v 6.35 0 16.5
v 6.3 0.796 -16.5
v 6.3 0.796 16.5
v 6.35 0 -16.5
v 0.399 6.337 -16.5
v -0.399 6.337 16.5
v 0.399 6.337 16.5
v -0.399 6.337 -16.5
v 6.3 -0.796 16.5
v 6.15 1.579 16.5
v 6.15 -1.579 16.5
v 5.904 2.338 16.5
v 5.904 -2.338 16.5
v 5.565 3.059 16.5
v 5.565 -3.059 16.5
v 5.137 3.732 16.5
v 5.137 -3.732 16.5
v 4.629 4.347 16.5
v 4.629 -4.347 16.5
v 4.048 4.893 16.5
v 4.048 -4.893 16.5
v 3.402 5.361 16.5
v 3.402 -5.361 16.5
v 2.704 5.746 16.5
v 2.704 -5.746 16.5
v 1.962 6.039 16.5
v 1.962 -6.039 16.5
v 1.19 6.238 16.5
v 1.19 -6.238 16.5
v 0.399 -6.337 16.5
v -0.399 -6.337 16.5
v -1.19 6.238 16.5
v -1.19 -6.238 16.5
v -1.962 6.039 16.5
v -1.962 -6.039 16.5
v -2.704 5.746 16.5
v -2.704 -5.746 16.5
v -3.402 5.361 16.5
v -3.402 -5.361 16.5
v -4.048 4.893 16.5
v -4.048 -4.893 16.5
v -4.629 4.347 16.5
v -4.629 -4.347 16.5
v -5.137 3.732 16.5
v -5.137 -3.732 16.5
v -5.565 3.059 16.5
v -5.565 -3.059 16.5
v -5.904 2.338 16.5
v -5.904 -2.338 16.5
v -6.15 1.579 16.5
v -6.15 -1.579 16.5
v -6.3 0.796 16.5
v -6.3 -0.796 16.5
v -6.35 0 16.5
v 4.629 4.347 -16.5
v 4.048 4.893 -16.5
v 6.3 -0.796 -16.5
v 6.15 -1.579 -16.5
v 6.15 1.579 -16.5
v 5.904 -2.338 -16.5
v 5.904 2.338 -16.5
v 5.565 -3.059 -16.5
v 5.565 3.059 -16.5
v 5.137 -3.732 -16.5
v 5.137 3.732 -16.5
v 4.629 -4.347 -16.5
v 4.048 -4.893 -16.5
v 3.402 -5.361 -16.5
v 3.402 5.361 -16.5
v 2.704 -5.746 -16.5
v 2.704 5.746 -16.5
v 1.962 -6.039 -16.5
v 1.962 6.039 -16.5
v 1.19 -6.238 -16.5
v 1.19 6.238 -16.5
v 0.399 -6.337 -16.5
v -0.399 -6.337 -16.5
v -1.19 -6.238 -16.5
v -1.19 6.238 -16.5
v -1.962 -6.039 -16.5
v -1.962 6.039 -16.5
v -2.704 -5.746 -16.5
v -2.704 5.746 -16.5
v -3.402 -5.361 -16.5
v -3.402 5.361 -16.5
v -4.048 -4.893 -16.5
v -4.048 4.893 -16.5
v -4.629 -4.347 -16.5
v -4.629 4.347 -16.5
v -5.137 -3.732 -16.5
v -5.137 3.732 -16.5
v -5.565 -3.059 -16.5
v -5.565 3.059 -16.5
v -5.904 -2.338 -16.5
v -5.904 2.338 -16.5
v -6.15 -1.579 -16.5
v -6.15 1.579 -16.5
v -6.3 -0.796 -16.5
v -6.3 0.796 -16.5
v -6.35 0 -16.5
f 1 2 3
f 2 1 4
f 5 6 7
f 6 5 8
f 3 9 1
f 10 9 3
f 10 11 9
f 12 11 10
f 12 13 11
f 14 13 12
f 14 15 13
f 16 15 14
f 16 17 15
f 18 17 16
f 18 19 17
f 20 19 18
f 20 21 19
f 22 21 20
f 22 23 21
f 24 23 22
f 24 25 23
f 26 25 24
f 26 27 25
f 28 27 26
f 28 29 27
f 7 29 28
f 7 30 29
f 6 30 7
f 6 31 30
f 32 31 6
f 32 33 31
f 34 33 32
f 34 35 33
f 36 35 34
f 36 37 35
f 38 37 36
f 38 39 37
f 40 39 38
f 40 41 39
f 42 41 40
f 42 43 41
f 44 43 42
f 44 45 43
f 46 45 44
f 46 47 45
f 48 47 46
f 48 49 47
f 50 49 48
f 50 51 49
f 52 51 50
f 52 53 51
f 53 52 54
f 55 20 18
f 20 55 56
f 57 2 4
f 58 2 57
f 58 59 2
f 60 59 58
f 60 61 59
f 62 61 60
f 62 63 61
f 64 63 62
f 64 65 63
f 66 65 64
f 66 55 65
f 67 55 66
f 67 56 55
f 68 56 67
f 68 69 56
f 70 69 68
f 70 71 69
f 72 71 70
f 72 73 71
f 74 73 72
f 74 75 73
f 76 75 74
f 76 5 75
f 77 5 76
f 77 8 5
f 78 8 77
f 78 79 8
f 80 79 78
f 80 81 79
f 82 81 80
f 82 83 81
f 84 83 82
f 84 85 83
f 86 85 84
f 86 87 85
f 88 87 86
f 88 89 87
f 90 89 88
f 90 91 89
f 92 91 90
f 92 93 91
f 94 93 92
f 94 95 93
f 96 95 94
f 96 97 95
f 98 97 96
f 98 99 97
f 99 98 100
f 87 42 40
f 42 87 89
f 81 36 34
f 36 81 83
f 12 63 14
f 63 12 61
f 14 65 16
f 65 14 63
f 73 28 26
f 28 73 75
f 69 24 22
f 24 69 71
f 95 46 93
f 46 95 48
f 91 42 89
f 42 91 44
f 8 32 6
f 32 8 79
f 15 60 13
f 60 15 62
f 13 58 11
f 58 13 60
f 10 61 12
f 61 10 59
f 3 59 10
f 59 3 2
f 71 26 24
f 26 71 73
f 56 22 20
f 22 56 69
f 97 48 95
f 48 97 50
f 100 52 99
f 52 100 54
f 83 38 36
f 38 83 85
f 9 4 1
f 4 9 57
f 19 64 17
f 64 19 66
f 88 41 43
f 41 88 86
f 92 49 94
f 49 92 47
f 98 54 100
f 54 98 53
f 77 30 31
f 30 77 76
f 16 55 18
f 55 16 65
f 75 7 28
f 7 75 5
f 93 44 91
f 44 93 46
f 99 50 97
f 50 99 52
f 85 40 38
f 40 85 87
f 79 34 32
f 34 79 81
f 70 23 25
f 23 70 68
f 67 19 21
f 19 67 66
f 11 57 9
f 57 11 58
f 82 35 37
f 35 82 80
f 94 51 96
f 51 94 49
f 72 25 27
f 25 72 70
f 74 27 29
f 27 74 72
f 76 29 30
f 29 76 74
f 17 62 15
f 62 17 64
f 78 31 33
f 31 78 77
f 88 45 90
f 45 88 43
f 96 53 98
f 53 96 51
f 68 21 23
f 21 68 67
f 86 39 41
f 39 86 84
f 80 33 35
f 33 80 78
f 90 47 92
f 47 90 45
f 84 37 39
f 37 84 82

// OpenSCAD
$fn = 50;


difference() {
	union() {
		translate(v = [0, 0, -16.5000000000]) {
			cylinder(h = 33, r = 6.3500000000);
		}
	}
	union() {
		translate(v = [0, 0, -100.0000000000]) {
			cylinder(h = 200, r = 0);
		}
	}
}
